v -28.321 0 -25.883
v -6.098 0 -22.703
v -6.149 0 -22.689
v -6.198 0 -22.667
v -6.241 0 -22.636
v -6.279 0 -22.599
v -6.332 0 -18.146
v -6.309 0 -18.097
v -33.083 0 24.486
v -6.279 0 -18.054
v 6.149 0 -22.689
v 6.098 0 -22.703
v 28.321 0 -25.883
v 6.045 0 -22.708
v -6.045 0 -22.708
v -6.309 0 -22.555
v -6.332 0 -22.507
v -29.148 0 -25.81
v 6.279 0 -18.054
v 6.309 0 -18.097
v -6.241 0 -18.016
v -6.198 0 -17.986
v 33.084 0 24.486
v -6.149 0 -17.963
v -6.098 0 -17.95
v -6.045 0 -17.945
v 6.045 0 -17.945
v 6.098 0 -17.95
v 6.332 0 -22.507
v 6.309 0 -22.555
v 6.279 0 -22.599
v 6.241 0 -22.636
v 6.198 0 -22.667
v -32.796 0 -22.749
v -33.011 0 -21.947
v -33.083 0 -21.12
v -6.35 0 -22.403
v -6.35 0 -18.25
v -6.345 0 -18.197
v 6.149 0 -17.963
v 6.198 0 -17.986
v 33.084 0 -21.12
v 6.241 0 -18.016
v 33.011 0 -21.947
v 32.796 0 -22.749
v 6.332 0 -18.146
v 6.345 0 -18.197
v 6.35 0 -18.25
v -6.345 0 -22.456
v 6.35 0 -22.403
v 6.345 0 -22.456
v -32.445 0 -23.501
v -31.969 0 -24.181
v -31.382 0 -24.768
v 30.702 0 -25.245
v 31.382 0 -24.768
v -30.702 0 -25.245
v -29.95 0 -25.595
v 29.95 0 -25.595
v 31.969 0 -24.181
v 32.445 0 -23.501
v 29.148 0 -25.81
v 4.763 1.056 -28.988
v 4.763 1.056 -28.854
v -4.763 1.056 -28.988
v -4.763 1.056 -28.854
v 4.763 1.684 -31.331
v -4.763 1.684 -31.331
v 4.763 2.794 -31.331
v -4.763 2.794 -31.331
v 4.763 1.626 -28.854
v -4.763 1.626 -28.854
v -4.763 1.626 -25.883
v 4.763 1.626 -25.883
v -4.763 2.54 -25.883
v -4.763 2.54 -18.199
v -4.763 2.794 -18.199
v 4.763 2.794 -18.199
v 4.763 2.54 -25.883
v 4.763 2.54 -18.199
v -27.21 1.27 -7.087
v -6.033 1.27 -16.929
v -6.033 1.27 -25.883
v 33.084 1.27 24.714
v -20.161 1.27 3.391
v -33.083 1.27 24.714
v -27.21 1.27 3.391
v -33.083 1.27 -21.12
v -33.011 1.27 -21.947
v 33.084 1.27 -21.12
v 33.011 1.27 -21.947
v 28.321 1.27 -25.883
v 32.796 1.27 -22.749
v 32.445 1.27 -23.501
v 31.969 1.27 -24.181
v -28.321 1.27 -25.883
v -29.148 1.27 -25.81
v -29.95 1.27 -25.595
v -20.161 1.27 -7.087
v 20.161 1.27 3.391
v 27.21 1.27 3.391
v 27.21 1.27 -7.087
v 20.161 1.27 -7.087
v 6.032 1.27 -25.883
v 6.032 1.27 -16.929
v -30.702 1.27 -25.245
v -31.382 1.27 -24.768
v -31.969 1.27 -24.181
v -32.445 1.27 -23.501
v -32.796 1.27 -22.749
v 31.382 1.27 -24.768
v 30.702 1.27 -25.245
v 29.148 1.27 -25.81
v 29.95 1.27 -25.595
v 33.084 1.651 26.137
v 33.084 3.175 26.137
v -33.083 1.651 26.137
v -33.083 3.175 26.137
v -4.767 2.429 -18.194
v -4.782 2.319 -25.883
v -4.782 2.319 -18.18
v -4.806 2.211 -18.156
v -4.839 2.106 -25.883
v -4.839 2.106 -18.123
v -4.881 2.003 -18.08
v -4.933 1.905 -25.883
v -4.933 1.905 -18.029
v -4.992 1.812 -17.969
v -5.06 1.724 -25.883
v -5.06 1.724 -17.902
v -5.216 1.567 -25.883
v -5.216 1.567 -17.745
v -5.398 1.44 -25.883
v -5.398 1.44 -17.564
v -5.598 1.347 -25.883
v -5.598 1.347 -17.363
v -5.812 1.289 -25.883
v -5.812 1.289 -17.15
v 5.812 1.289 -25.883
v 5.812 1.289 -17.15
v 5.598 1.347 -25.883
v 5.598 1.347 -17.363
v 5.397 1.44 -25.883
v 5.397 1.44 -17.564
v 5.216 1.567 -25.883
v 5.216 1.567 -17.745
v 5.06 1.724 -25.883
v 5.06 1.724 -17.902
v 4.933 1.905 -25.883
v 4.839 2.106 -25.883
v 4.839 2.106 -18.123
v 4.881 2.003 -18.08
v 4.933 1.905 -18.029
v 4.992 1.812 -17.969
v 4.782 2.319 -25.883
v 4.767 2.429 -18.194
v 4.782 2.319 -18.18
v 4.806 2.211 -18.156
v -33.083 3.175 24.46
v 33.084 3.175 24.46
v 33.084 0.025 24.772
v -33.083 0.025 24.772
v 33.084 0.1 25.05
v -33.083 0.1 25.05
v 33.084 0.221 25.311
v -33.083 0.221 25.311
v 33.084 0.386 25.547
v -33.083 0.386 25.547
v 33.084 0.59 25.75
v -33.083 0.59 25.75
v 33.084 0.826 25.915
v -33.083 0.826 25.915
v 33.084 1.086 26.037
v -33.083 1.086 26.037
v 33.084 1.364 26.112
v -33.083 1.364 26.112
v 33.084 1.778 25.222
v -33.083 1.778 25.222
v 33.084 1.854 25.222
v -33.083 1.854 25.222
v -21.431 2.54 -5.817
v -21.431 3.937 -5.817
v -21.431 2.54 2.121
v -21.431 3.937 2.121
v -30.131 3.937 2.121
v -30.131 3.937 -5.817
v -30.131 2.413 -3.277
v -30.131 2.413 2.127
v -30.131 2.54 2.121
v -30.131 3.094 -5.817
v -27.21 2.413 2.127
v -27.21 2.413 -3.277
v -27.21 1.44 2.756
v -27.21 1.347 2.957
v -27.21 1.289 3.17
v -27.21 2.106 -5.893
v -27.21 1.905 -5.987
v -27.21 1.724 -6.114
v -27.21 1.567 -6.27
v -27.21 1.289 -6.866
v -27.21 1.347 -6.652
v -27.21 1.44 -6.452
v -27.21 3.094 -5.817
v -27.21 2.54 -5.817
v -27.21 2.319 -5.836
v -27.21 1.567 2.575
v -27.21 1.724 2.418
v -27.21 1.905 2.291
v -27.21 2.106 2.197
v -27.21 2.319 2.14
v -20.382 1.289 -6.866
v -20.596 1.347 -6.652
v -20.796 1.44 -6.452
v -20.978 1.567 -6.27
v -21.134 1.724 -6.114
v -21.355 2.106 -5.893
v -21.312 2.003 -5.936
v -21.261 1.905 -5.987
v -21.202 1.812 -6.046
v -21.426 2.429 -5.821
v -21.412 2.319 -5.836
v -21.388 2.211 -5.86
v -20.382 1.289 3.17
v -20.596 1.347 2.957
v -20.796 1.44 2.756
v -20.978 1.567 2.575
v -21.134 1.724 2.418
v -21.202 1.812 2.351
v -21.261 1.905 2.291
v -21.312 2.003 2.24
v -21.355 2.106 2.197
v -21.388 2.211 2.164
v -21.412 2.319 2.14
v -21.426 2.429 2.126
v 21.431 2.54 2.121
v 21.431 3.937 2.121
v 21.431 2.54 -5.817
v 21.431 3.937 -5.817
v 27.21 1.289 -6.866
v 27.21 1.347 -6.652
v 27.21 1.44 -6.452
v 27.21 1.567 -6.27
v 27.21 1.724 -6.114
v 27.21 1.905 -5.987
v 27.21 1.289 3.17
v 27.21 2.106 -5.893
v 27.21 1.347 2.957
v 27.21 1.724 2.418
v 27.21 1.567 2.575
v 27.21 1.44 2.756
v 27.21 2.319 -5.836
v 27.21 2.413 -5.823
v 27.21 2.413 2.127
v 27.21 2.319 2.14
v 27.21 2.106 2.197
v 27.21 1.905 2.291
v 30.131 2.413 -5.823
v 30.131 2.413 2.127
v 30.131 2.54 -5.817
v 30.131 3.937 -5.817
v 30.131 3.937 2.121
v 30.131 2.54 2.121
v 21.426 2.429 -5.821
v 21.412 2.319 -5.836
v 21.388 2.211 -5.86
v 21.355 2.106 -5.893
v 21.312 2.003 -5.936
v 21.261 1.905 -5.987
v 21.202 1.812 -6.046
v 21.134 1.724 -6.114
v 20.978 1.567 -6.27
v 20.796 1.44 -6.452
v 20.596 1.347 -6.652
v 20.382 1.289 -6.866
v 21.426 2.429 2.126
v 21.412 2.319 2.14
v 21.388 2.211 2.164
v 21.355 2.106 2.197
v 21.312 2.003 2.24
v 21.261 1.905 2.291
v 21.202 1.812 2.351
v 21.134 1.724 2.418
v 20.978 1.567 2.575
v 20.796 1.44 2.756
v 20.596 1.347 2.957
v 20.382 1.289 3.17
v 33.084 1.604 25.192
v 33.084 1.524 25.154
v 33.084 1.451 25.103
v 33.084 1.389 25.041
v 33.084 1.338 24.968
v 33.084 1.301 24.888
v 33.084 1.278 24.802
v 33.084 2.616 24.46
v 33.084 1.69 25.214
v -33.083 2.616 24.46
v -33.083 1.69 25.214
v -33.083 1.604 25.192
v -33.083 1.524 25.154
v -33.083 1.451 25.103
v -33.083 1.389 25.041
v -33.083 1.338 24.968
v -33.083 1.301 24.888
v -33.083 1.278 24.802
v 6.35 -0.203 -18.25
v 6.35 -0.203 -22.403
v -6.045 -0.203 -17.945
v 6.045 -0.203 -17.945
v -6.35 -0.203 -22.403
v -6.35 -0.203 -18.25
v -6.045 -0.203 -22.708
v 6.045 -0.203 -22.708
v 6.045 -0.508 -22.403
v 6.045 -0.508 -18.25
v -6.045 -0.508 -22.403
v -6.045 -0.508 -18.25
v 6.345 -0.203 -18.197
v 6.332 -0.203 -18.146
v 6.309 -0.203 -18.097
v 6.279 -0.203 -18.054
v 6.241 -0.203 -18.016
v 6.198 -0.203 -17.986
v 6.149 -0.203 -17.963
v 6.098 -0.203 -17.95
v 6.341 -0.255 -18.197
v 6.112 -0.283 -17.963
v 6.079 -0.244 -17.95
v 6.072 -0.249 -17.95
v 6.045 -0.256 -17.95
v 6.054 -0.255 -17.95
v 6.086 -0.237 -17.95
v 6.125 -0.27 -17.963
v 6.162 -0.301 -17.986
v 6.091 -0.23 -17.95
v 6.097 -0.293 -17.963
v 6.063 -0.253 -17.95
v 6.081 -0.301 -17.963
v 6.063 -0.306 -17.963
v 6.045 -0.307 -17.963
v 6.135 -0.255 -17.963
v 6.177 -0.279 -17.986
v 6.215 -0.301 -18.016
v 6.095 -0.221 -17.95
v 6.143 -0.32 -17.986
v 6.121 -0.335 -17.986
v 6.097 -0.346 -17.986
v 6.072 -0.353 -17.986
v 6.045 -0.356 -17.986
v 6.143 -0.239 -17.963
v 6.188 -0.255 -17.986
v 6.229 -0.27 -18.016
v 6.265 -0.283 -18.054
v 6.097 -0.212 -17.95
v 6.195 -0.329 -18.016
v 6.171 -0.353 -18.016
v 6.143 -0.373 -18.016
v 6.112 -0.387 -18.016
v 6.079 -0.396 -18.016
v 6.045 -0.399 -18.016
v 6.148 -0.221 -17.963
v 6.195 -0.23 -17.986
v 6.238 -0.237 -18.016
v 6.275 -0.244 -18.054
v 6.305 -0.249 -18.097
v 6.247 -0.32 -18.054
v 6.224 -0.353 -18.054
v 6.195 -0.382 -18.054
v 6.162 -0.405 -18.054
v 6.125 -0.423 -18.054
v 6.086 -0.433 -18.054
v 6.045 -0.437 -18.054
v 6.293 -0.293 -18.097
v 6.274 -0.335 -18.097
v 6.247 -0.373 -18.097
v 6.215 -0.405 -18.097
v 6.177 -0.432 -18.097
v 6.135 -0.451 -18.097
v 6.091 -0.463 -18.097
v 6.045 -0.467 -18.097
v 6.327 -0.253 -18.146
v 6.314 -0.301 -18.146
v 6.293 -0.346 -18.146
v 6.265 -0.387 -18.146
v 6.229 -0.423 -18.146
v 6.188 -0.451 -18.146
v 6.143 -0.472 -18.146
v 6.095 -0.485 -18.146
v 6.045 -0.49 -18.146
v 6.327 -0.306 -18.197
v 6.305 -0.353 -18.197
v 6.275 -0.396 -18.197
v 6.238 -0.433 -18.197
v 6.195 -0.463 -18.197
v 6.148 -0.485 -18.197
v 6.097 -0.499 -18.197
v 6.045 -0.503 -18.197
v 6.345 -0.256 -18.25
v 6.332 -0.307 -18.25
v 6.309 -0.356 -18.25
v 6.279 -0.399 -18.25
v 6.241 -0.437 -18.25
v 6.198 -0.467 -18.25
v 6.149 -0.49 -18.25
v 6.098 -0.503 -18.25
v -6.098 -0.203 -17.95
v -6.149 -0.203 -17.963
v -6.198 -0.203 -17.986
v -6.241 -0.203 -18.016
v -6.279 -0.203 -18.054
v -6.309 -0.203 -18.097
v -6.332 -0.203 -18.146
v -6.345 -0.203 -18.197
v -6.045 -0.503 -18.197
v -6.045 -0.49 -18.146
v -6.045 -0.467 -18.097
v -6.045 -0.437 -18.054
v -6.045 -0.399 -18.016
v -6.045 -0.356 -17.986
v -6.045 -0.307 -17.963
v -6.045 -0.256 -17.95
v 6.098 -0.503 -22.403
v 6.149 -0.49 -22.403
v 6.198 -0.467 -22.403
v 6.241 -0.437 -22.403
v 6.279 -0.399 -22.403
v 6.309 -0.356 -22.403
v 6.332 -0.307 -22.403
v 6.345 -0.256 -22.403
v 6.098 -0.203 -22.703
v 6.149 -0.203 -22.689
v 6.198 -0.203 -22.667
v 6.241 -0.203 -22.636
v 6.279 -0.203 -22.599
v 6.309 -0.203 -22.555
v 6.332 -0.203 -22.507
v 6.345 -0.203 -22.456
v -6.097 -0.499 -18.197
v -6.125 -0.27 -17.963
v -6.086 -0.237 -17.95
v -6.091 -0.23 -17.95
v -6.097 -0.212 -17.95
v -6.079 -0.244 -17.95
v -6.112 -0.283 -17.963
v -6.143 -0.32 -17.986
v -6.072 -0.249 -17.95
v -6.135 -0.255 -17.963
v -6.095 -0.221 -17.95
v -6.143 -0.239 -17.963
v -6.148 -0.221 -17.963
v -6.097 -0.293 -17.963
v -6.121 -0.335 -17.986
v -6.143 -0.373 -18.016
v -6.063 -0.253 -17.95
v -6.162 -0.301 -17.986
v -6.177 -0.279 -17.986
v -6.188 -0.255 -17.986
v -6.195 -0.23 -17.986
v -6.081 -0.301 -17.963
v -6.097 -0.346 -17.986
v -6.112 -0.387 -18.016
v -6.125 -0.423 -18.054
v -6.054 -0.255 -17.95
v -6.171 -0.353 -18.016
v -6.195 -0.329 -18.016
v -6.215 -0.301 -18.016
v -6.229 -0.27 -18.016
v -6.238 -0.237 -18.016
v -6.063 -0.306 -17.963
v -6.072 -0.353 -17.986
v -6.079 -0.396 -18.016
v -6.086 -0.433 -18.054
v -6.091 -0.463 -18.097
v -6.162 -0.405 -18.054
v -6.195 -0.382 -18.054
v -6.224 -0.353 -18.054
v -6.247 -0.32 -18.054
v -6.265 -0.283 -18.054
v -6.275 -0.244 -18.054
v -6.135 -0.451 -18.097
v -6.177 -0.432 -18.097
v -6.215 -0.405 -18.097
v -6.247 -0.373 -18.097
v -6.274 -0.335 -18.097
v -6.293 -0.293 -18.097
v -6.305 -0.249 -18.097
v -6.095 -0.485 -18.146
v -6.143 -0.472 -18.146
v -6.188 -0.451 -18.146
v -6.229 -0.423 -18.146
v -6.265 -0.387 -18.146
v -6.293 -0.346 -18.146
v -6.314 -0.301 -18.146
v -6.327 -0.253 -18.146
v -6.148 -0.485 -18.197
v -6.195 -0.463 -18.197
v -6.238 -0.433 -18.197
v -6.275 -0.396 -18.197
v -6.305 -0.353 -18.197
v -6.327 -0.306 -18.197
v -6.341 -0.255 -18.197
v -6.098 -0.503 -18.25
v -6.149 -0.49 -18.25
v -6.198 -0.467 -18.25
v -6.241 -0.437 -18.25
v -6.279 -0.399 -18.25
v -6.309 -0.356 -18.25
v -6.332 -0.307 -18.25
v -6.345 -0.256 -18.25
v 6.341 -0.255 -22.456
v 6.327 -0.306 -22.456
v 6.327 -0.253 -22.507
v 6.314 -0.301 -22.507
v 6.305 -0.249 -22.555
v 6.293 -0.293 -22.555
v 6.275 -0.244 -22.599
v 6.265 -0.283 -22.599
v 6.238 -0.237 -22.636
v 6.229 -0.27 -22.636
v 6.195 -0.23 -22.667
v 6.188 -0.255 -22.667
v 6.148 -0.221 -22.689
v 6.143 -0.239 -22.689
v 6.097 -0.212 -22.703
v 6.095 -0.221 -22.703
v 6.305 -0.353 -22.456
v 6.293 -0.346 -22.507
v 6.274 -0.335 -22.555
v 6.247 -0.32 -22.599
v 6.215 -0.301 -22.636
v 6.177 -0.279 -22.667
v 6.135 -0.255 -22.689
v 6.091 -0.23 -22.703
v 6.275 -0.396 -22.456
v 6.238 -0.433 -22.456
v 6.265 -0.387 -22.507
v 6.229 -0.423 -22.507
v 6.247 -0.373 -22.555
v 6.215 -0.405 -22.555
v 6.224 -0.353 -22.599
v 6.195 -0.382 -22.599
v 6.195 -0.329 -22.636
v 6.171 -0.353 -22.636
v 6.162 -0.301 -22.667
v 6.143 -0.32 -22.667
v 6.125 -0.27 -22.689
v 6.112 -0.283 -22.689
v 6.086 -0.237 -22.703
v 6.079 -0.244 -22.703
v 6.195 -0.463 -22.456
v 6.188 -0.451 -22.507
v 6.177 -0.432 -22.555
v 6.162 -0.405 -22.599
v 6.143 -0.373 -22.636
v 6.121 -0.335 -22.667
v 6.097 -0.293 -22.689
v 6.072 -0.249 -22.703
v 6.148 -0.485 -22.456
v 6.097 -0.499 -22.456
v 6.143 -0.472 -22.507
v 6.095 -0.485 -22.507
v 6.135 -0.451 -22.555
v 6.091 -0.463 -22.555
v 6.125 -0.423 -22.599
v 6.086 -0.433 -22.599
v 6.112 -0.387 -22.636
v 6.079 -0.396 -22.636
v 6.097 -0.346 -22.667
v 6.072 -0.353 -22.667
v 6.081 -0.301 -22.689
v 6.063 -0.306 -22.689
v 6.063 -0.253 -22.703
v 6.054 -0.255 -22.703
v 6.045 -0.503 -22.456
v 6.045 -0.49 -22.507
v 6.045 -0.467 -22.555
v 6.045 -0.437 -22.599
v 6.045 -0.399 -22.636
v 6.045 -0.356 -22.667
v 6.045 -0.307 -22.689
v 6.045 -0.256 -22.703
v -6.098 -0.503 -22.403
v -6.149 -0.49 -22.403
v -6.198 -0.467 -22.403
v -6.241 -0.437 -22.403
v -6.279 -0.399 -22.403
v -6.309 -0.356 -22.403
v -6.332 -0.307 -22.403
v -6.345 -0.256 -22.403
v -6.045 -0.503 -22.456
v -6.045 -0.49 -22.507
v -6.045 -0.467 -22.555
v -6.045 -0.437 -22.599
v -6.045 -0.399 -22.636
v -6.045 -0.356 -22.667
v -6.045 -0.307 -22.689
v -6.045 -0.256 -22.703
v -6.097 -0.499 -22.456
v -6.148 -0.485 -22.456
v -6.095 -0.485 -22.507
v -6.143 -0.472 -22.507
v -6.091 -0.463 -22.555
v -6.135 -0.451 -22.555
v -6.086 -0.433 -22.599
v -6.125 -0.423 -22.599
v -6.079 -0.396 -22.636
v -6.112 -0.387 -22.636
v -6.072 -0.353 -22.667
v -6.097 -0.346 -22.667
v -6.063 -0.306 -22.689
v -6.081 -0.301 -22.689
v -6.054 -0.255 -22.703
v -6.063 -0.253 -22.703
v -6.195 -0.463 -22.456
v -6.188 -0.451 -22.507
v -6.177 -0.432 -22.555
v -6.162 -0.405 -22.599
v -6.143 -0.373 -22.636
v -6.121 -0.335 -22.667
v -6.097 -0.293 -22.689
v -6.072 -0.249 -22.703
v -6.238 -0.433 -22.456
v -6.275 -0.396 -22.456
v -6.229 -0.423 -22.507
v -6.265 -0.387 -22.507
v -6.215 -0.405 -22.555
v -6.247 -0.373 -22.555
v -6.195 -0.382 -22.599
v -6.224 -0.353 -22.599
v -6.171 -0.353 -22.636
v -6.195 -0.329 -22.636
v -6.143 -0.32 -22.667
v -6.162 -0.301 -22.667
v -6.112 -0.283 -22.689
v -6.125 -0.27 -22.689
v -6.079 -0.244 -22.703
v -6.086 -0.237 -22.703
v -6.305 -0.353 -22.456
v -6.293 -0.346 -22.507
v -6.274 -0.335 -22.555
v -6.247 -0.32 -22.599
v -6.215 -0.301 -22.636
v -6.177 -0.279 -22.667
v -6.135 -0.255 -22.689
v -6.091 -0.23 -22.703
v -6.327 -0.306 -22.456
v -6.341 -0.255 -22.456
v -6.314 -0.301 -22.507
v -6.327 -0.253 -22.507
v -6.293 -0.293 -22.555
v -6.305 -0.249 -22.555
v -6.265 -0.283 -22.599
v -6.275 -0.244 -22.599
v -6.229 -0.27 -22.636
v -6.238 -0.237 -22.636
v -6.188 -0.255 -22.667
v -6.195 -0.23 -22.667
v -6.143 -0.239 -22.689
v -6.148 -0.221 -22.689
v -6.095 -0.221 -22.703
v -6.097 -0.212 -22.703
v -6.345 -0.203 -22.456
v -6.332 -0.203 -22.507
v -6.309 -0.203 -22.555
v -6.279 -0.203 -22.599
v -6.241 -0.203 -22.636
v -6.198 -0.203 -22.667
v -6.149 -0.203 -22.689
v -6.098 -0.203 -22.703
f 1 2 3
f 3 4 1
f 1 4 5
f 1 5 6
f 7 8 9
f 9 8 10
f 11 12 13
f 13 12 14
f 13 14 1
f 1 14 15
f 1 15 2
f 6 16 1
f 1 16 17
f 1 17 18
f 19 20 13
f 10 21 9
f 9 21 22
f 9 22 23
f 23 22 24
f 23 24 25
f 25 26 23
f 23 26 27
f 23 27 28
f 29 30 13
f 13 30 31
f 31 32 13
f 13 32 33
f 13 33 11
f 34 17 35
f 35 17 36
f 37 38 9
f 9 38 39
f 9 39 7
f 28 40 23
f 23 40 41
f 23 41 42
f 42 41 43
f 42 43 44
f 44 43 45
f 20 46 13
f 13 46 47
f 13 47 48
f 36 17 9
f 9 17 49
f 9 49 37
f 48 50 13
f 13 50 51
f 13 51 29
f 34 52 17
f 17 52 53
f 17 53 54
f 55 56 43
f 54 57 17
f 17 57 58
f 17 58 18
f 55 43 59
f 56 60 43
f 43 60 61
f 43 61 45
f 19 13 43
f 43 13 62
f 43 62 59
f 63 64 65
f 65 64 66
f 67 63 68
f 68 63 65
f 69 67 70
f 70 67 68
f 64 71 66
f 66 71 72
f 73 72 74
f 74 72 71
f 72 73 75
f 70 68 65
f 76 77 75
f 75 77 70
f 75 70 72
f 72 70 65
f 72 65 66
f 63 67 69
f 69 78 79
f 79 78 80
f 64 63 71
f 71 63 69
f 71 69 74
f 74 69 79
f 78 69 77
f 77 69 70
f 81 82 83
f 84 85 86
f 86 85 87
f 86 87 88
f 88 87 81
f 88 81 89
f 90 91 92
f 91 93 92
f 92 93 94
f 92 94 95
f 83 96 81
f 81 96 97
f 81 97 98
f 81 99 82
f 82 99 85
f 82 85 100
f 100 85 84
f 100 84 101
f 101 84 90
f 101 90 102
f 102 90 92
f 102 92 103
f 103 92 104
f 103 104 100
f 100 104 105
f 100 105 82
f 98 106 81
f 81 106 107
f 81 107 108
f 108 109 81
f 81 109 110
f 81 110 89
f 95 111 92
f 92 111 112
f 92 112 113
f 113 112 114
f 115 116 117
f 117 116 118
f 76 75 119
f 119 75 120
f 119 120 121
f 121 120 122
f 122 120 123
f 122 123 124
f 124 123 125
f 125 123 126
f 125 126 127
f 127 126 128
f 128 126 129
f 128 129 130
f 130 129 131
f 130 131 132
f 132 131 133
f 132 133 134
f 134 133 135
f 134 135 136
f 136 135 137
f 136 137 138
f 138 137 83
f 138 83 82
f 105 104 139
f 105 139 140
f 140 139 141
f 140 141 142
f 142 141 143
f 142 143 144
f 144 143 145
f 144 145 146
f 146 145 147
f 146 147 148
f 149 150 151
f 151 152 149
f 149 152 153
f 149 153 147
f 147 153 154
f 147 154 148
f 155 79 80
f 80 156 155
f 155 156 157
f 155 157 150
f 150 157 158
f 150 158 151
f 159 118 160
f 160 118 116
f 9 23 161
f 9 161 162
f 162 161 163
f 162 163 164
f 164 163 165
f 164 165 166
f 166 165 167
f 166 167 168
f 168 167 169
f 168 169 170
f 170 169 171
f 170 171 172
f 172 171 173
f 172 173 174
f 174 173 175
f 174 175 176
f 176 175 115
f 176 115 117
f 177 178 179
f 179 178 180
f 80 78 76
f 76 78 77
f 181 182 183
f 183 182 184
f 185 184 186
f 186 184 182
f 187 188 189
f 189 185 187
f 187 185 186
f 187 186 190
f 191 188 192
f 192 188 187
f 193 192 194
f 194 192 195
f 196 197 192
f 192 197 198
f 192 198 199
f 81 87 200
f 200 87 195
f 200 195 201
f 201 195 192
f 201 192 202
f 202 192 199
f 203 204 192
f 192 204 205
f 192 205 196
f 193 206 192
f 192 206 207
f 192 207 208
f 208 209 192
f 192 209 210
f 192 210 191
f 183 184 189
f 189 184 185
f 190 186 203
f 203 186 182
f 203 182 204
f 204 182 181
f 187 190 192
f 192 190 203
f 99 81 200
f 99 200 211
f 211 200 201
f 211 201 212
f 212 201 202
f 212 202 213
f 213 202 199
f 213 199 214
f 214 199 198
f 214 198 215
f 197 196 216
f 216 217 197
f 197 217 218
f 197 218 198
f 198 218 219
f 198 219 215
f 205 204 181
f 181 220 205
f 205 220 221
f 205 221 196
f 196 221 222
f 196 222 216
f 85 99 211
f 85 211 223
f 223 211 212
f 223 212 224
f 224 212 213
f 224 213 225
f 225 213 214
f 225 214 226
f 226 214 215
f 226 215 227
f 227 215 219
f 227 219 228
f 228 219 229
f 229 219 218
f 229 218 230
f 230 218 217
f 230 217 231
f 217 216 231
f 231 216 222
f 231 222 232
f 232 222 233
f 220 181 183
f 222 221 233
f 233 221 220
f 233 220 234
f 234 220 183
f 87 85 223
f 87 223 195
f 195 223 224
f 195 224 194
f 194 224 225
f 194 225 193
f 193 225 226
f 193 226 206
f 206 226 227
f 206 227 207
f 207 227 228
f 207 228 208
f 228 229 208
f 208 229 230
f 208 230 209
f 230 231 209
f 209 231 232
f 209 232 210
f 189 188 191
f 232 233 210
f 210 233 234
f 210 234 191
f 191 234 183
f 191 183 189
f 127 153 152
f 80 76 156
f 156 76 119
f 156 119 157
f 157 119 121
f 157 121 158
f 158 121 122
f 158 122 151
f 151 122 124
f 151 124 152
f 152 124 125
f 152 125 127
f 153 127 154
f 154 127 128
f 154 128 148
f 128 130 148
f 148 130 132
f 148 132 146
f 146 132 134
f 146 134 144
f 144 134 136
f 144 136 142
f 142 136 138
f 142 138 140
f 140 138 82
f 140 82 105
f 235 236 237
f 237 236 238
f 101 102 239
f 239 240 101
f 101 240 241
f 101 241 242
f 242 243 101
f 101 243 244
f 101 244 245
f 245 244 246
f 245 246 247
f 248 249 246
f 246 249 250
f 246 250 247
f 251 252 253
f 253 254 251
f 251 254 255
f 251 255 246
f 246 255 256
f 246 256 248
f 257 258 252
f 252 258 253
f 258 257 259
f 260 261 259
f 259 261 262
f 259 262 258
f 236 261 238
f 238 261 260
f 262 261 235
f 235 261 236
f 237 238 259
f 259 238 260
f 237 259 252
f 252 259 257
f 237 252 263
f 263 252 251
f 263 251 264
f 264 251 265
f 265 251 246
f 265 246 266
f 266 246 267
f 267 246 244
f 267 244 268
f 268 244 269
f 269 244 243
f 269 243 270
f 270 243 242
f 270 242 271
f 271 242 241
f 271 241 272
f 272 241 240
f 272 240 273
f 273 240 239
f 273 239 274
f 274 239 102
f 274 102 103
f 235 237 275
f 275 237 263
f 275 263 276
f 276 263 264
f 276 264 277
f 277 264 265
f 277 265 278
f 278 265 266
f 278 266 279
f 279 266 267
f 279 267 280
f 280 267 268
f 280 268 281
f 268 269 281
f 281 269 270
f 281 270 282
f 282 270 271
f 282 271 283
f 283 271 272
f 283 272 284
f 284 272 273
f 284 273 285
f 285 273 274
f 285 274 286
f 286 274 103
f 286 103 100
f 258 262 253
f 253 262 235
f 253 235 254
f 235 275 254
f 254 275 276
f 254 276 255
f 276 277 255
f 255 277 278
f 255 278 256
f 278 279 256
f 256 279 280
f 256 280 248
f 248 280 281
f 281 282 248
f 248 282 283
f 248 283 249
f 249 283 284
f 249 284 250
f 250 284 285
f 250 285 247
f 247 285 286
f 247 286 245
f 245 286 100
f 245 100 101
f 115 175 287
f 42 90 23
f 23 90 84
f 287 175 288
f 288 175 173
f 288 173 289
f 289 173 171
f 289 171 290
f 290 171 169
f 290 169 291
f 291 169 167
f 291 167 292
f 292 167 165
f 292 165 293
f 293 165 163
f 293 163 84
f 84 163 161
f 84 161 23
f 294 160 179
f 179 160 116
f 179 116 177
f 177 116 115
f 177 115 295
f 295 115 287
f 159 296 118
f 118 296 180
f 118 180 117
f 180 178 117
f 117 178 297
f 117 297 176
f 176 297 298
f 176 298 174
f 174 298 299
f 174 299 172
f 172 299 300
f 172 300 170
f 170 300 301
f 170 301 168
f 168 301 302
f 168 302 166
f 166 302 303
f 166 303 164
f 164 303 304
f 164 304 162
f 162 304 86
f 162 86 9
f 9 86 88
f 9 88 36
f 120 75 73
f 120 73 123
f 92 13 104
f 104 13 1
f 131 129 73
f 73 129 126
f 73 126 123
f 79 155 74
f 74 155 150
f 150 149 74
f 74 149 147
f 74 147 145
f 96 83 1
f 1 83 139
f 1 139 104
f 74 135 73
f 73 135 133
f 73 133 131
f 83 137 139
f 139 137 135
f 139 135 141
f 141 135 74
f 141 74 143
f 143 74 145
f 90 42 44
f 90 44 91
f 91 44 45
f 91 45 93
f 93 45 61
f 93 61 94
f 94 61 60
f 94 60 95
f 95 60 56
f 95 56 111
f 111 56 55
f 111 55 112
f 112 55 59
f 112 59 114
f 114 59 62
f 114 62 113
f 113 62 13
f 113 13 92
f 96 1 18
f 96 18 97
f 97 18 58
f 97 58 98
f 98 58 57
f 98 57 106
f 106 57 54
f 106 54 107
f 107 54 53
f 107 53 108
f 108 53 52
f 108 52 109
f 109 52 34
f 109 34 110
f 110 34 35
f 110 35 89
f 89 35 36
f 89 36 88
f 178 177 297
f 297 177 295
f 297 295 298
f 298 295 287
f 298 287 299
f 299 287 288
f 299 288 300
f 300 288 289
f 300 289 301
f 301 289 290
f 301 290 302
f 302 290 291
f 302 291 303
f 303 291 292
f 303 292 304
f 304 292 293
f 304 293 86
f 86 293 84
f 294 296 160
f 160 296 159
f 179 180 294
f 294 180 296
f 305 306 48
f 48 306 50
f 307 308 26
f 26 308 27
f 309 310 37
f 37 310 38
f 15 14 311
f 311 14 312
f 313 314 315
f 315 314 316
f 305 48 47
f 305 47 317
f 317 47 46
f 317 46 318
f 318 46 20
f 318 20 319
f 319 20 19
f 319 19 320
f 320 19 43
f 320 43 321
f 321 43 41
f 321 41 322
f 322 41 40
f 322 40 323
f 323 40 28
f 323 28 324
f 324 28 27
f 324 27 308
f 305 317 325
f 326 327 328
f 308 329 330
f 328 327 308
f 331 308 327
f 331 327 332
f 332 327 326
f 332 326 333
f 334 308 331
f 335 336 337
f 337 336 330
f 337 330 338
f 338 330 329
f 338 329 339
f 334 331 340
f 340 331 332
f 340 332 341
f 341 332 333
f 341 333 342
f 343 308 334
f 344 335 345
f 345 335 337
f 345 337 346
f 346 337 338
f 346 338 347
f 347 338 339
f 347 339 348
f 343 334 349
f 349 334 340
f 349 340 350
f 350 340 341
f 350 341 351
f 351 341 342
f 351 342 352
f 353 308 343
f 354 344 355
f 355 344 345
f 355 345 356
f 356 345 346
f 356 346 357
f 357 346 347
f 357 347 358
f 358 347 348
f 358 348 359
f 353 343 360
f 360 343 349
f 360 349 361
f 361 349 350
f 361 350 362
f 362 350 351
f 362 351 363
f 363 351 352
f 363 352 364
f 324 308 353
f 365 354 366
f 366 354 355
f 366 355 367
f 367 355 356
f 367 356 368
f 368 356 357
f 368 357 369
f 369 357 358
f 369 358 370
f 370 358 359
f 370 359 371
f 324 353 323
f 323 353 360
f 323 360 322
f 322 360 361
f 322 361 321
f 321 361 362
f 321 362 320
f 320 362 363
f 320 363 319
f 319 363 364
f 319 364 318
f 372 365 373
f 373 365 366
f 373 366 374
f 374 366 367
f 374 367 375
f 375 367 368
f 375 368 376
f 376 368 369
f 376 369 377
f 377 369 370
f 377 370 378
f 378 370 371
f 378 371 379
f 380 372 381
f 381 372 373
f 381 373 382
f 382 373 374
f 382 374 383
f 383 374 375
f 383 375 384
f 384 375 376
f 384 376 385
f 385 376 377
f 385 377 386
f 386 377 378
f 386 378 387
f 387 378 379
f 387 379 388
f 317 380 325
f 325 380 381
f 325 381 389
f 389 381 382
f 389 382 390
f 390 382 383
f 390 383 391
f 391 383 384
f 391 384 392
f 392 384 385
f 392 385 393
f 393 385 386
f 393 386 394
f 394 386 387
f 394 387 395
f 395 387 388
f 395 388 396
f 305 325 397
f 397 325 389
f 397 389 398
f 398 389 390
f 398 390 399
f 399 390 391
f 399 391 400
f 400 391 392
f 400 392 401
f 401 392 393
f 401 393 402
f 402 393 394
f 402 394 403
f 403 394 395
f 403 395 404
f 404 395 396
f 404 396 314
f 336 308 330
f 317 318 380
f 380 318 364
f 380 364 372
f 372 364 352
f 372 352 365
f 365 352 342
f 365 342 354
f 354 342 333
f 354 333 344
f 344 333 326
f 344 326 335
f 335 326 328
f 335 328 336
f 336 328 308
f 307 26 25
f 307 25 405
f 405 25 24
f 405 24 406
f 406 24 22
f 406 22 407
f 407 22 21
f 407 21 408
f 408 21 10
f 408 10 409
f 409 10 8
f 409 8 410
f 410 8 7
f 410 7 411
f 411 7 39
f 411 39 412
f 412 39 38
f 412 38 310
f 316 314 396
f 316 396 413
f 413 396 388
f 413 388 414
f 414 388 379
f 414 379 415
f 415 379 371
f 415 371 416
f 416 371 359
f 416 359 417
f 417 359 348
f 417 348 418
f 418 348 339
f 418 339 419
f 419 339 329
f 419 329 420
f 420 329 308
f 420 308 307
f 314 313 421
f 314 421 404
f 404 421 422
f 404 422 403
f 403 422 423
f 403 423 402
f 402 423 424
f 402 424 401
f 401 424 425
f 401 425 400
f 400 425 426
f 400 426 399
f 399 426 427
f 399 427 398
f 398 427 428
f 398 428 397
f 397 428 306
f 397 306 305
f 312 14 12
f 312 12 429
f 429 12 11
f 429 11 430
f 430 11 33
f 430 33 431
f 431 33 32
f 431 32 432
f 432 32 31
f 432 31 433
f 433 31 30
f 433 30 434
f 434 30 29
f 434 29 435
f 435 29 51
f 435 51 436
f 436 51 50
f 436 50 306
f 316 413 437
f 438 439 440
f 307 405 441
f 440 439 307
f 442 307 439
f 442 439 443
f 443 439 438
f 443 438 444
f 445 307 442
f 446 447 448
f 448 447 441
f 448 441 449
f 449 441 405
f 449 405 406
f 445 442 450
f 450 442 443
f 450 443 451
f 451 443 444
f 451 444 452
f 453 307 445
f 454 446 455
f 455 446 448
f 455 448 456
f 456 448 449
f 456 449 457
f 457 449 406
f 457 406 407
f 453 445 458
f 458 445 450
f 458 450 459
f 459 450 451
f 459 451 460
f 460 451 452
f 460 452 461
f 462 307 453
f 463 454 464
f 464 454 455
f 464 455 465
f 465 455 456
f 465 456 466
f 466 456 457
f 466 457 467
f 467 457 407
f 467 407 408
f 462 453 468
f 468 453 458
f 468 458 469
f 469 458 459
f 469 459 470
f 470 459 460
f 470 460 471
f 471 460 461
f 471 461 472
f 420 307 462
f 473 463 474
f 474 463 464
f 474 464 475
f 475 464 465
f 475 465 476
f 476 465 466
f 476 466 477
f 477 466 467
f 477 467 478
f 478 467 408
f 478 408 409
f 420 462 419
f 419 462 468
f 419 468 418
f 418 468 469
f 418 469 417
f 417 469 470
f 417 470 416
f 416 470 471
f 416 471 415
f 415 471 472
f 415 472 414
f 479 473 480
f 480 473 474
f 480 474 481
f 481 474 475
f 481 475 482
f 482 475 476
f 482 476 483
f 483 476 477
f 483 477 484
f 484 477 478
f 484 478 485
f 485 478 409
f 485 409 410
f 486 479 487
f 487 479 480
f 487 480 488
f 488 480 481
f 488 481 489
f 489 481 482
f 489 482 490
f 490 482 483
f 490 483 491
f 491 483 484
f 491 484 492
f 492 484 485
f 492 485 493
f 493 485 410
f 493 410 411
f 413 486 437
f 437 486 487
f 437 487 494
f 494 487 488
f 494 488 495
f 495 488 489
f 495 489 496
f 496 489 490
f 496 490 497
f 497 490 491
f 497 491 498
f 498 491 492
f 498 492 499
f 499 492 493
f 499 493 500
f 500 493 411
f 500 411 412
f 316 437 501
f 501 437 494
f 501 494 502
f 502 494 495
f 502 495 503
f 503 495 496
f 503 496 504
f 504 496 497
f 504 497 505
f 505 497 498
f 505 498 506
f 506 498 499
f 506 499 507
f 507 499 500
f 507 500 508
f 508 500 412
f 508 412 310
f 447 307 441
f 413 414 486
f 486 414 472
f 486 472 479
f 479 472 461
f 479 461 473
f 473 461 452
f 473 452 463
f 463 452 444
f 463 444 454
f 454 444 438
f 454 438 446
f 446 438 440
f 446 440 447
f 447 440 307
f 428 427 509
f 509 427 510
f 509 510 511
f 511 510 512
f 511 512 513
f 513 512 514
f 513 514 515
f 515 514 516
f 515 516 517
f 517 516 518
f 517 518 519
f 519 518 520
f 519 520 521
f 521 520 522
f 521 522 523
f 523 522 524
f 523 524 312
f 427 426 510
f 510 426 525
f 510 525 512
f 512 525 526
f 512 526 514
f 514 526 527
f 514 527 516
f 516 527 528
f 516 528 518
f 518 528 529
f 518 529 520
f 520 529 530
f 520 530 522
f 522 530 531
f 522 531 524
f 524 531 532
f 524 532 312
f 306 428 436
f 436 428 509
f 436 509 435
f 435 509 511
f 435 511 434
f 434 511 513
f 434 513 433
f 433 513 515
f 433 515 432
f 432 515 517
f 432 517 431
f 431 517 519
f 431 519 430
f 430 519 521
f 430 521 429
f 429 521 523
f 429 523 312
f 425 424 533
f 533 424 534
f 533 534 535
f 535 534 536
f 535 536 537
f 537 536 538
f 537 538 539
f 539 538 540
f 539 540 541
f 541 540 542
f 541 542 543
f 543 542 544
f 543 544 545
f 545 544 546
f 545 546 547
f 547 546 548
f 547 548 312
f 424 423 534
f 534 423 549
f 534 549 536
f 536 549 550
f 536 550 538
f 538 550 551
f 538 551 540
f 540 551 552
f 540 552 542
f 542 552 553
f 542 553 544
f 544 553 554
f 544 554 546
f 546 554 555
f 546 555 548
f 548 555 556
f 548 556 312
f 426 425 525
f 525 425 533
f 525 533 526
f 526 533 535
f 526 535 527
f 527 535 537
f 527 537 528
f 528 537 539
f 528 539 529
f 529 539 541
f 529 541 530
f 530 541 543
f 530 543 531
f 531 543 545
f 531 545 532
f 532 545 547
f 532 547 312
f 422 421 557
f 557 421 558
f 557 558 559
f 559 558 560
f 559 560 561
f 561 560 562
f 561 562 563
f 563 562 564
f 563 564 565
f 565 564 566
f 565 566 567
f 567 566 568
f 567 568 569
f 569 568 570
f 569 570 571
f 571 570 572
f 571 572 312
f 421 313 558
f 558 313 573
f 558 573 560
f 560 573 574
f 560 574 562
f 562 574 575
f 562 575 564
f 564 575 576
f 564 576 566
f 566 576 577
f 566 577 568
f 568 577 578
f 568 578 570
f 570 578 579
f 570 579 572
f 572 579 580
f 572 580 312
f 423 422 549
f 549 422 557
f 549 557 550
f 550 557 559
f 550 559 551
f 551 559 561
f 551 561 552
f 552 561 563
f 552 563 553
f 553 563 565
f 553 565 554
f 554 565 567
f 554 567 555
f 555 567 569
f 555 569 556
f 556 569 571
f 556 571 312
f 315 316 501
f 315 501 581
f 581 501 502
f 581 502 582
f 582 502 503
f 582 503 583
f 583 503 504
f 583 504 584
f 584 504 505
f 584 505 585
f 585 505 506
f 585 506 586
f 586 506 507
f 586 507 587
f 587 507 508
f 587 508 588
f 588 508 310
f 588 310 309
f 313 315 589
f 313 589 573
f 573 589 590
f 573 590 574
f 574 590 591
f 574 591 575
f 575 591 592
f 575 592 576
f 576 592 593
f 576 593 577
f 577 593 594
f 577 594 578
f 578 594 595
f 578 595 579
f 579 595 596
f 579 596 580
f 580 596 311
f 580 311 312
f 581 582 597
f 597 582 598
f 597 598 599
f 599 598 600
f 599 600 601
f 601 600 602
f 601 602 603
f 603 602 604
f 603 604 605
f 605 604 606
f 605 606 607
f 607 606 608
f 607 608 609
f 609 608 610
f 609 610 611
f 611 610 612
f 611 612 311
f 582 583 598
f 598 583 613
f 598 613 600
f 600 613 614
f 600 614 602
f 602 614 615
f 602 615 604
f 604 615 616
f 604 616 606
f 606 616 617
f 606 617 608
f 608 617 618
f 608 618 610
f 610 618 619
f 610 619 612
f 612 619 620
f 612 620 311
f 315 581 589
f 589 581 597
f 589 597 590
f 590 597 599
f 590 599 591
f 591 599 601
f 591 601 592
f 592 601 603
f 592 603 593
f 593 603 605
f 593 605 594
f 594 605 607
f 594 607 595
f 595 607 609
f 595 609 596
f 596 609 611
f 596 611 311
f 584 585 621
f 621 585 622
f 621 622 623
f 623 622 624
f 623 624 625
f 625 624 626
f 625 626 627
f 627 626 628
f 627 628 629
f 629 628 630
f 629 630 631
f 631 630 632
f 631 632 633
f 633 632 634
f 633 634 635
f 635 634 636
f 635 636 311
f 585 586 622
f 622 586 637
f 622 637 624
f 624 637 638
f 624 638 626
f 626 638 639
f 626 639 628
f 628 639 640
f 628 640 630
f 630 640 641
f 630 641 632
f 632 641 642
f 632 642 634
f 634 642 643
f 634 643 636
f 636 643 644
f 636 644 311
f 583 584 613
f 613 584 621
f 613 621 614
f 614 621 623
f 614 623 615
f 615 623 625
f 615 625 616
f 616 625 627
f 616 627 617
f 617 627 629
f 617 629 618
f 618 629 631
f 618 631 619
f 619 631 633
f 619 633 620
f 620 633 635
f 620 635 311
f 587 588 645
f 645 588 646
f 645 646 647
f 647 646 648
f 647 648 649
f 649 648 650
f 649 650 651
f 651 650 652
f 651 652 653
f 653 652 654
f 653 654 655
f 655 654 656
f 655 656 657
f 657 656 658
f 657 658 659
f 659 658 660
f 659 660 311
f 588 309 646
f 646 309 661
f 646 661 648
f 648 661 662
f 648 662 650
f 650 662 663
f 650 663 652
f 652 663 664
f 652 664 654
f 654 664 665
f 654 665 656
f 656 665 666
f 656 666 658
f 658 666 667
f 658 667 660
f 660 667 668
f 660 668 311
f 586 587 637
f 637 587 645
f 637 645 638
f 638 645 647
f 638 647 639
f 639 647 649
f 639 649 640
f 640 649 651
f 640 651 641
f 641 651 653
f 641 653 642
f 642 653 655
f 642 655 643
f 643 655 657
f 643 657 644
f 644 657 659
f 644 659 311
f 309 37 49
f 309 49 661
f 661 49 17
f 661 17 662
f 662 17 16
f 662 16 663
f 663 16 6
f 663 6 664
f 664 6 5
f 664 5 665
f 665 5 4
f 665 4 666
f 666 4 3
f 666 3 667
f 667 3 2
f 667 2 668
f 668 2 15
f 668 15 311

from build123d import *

# Parameters (mm, degrees)
SKETCH1_W            = 66.675
SKETCH1_H            = 52.2732
BOSS_EXTRUDE1_DEPTH  = 1.27
BOSS_EXTRUDE3_DEPTH  = 4.7625
BOSS_EXTRUDE4_DEPTH  = 7.9375
CUT_EXTRUDE2_DEPTH   = 2.921
FILLET1_R            = 1.27
FILLET2_R            = 1.27
MIRROR1_START        = 20.16125
MIRROR1_DEPTH        = 7.0485
MIRROR1_START_2      = 27.20975
MIRROR1_2_DEPTH      = 2.921
MIRROR1_START_3      = -8
MIRROR1_3_DEPTH      = 12
SKETCH7_W            = 1.016
SKETCH7_H            = 1.905
BOSS_EXTRUDE5_DEPTH  = 66.675
SKETCH8_W            = 66.675
SKETCH8_H            = 0.6604
BOSS_EXTRUDE6_DEPTH  = 0.762
FILLET5_R            = 1.651
SKETCH10_W           = 9.525
SKETCH10_H           = 2.7178
CUT_EXTRUDE3_DEPTH   = 0.1016
SKETCH11_W           = 66.675
SKETCH11_H           = 1.2446
CUT_EXTRUDE4_DEPTH   = 0.1016
SKETCH12_W           = 107.616027614
SKETCH12_H           = 63.046095141
SKETCH12_W_2         = 66.167
SKETCH12_H_2         = 53.768388695
CUT_EXTRUDE5_DEPTH   = 46.918560191
FILLET6_R            = 4.7625
SKETCH13_W           = 0.8636
SKETCH13_H           = 0.6604
CUT_EXTRUDE6_DEPTH   = 74.315736052
BOSS_EXTRUDE8_DEPTH  = 66.167
FILLET7_R            = 0.508
BOSS_EXTRUDE9_DEPTH  = 66.167
SKETCH17_W           = 9.525
SKETCH17_H           = 1.1684
BOSS_EXTRUDE10_DEPTH = 1.27
SKETCH18_W           = 12.7
SKETCH18_H           = 4.7625
BOSS_EXTRUDE13_DEPTH = 0.508
FILLET8_R            = 0.3048


with BuildPart() as part:
    # Sketch1 → Boss-Extrude1 (new body)
    with BuildSketch(Plane(origin=(0, 0, 0), x_dir=(1, 0, 0), z_dir=(0, 1, 0))):
        Rectangle(SKETCH1_W, SKETCH1_H)
    extrude(amount=BOSS_EXTRUDE1_DEPTH)

    # Sketch4 → Boss-Extrude3 (add, symmetric)
    with BuildSketch(Plane(origin=(0, 0, 0), x_dir=(0, 0, -1), z_dir=(1, 0, 0))):
        Polygon((28.987783874, 1.055971868), (31.3309, 1.683807942), (31.3309, 2.794), (18.1991, 2.794), (18.1991, 1.27), (26.1366, 1.27), (26.1366, 1.524), (28.8544, 1.524), (28.8544, 1.055971868), align=None)
    extrude(amount=BOSS_EXTRUDE3_DEPTH, both=True)

    # Sketch5 → Boss-Extrude4 (add)
    with BuildSketch(Plane(origin=(0, 0, -5.8166), x_dir=(-1, 0, 0), z_dir=(0, 0, -1))):
        Polygon((21.43125, 1.27), (27.20975, 1.27), (27.20975, 2.413), (30.13075, 2.413), (30.13075, 3.937), (21.43125, 3.937), align=None)
    extrude(amount=-BOSS_EXTRUDE4_DEPTH)

    # Sketch6 → Cut-Extrude2 (cut)
    with BuildSketch(Plane.ZY.offset(30.13075)):
        Polygon((-5.8166, 2.413), (-3.2766, 2.413), (-5.8166, 3.093590949), align=None)
    extrude(amount=-CUT_EXTRUDE2_DEPTH, mode=Mode.SUBTRACT)

    # Fillet1
    fillet1_edges = [part.edges().sort_by_distance(p)[0] for p in [
        (-24.3205, 1.27, 2.1209),
        (-21.43125, 1.27, -1.84785),
        (-24.3205, 1.27, -5.8166),
    ]]
    fillet(fillet1_edges, radius=FILLET1_R)

    # Fillet2
    # the kernel refuses this fillet: 1.27 mm, written as the material it adds along each edge
    with BuildSketch(Plane(origin=(-4.7625, 1.27, -18.1991), x_dir=(-1, 0, 0), z_dir=(0, 0, -1))) as fillet2_piece_1:
        with BuildLine():
            CenterArc((FILLET2_R, FILLET2_R), FILLET2_R, 180, 90)
            Line((0, FILLET2_R), (-FILLET2_R * 0.02, FILLET2_R))
            Line((-FILLET2_R * 0.02, FILLET2_R), (-FILLET2_R * 0.02, -FILLET2_R * 0.02))
            Line((-FILLET2_R * 0.02, -FILLET2_R * 0.02), (FILLET2_R, -FILLET2_R * 0.02))
            Line((FILLET2_R, -FILLET2_R * 0.02), (FILLET2_R, 0))
        make_face()
    extrude(amount=7.9375)
    with BuildSketch(Plane(origin=(-4.7625, 1.27, -18.1991), x_dir=(0, 0, 1), z_dir=(1, 0, 0))) as fillet2_piece_2:
        with BuildLine():
            CenterArc((FILLET2_R, -FILLET2_R), FILLET2_R, 90, 90)
            Line((0, -FILLET2_R), (-FILLET2_R * 0.02, -FILLET2_R))
            Line((-FILLET2_R * 0.02, -FILLET2_R), (-FILLET2_R * 0.02, FILLET2_R * 0.02))
            Line((-FILLET2_R * 0.02, FILLET2_R * 0.02), (FILLET2_R, FILLET2_R * 0.02))
            Line((FILLET2_R, FILLET2_R * 0.02), (FILLET2_R, 0))
        make_face()
    extrude(amount=9.525)
    with BuildSketch(Plane(origin=(4.7625, 1.27, -18.1991), x_dir=(1, 0, 0), z_dir=(0, 0, -1))) as fillet2_piece_3:
        with BuildLine():
            CenterArc((FILLET2_R, -FILLET2_R), FILLET2_R, 90, 90)
            Line((0, -FILLET2_R), (-FILLET2_R * 0.02, -FILLET2_R))
            Line((-FILLET2_R * 0.02, -FILLET2_R), (-FILLET2_R * 0.02, FILLET2_R * 0.02))
            Line((-FILLET2_R * 0.02, FILLET2_R * 0.02), (FILLET2_R, FILLET2_R * 0.02))
            Line((FILLET2_R, FILLET2_R * 0.02), (FILLET2_R, 0))
        make_face()
    extrude(amount=7.9375)
    with BuildSketch(Plane(origin=(-4.7625, 1.27, -15.0241), x_dir=(-1, 0, 0), z_dir=(0, 0, -1))) as fillet2_piece_4a_section:
        with BuildLine():
            CenterArc((FILLET2_R, FILLET2_R), FILLET2_R, 180, 90)
            Line((0, FILLET2_R), (-FILLET2_R * 0.02, FILLET2_R))
            Line((-FILLET2_R * 0.02, FILLET2_R), (-FILLET2_R * 0.02, -FILLET2_R * 0.02))
            Line((-FILLET2_R * 0.02, -FILLET2_R * 0.02), (FILLET2_R, -FILLET2_R * 0.02))
            Line((FILLET2_R, -FILLET2_R * 0.02), (FILLET2_R, 0))
        make_face()
    fillet2_piece_4a = extrude(amount=11.1125, mode=Mode.PRIVATE)
    fillet2_piece_4a = split(fillet2_piece_4a, bisect_by=Plane(origin=(-4.7625, 1.27, -18.1991), z_dir=(0, 0, 1)), keep=Keep.TOP, mode=Mode.PRIVATE)
    with BuildSketch(Plane(origin=(-7.9375, 1.27, -18.1991), x_dir=(0, 0, 1), z_dir=(1, 0, 0))) as fillet2_piece_4b_section:
        with BuildLine():
            CenterArc((FILLET2_R, -FILLET2_R), FILLET2_R, 90, 90)
            Line((0, -FILLET2_R), (-FILLET2_R * 0.02, -FILLET2_R))
            Line((-FILLET2_R * 0.02, -FILLET2_R), (-FILLET2_R * 0.02, FILLET2_R * 0.02))
            Line((-FILLET2_R * 0.02, FILLET2_R * 0.02), (FILLET2_R, FILLET2_R * 0.02))
            Line((FILLET2_R, FILLET2_R * 0.02), (FILLET2_R, 0))
        make_face()
    fillet2_piece_4b = extrude(amount=12.7, mode=Mode.PRIVATE)
    fillet2_piece_4b = split(fillet2_piece_4b, bisect_by=Plane(origin=(-4.7625, 1.27, -18.1991), z_dir=(-1, 0, 0)), keep=Keep.TOP, mode=Mode.PRIVATE)
    fillet2_piece_4 = fillet2_piece_4a & fillet2_piece_4b
    add(fillet2_piece_4)
    with BuildSketch(Plane(origin=(-4.7625, 1.27, -18.1991), x_dir=(0, 0, 1), z_dir=(1, 0, 0))) as fillet2_piece_5a_section:
        with BuildLine():
            CenterArc((FILLET2_R, -FILLET2_R), FILLET2_R, 90, 90)
            Line((0, -FILLET2_R), (-FILLET2_R * 0.02, -FILLET2_R))
            Line((-FILLET2_R * 0.02, -FILLET2_R), (-FILLET2_R * 0.02, FILLET2_R * 0.02))
            Line((-FILLET2_R * 0.02, FILLET2_R * 0.02), (FILLET2_R, FILLET2_R * 0.02))
            Line((FILLET2_R, FILLET2_R * 0.02), (FILLET2_R, 0))
        make_face()
    fillet2_piece_5a = extrude(amount=12.7, mode=Mode.PRIVATE)
    fillet2_piece_5a = split(fillet2_piece_5a, bisect_by=Plane(origin=(4.7625, 1.27, -18.1991), z_dir=(1, 0, 0)), keep=Keep.TOP, mode=Mode.PRIVATE)
    with BuildSketch(Plane(origin=(4.7625, 1.27, -15.0241), x_dir=(1, 0, 0), z_dir=(0, 0, -1))) as fillet2_piece_5b_section:
        with BuildLine():
            CenterArc((FILLET2_R, -FILLET2_R), FILLET2_R, 90, 90)
            Line((0, -FILLET2_R), (-FILLET2_R * 0.02, -FILLET2_R))
            Line((-FILLET2_R * 0.02, -FILLET2_R), (-FILLET2_R * 0.02, FILLET2_R * 0.02))
            Line((-FILLET2_R * 0.02, FILLET2_R * 0.02), (FILLET2_R, FILLET2_R * 0.02))
            Line((FILLET2_R, FILLET2_R * 0.02), (FILLET2_R, 0))
        make_face()
    fillet2_piece_5b = extrude(amount=11.1125, mode=Mode.PRIVATE)
    fillet2_piece_5b = split(fillet2_piece_5b, bisect_by=Plane(origin=(4.7625, 1.27, -18.1991), z_dir=(0, 0, 1)), keep=Keep.TOP, mode=Mode.PRIVATE)
    fillet2_piece_5 = fillet2_piece_5a & fillet2_piece_5b
    add(fillet2_piece_5)

    # Mirror1: read off the stored shape, not the designer's step
    # Mirror1 outline → Mirror1 (add)
    with BuildSketch(Plane.YZ.offset(MIRROR1_START)):
        with BuildLine():
            Line((3.937, -5.8166), (3.937, 2.1209))
            Line((3.937, 2.1209), (2.54, 2.1209))
            ThreePointArc((2.54, 2.1209), (1.641974388, 2.492874388), (1.27, 3.3909))
            Line((1.27, 3.3909), (1.27, -7.0866))
            ThreePointArc((1.27, -7.0866), (1.641974388, -6.188574388), (2.54, -5.8166))
            Line((2.54, -5.8166), (3.937, -5.8166))
        make_face()
    extrude(amount=MIRROR1_DEPTH)

    # Mirror1 2 outline → Mirror1 2 (add)
    with BuildSketch(Plane.YZ.offset(MIRROR1_START_2)):
        with BuildLine():
            Line((3.937, -5.8166), (3.937, 2.1209))
            Line((3.937, 2.1209), (2.54, 2.1209))
            ThreePointArc((2.54, 2.1209), (2.476420276, 2.122492487), (2.413, 2.127265955))
            Line((2.413, 2.127265955), (2.413, -5.822965955))
            ThreePointArc((2.413, -5.822965955), (2.476420276, -5.818192487), (2.54, -5.8166))
            Line((2.54, -5.8166), (3.937, -5.8166))
        make_face()
    extrude(amount=MIRROR1_2_DEPTH)

    # Mirror1 3 outline → Mirror1 3 (cut)
    with BuildSketch(Plane.XY.offset(MIRROR1_START_3)):
        with BuildLine():
            ThreePointArc((20.16125, 1.27), (21.059275612, 1.641974388), (21.43125, 2.54))
            Line((21.43125, 2.54), (21.43125, 3.937))
            Line((21.43125, 3.937), (20.16125, 3.937))
            Line((20.16125, 3.937), (20.16125, 1.27))
        make_face()
    extrude(amount=MIRROR1_3_DEPTH, mode=Mode.SUBTRACT)

    # Sketch7 → Boss-Extrude5 (add)
    with BuildSketch(Plane.ZY.offset(33.3375)):
        with Locations((25.6286, 2.2225)):
            Rectangle(SKETCH7_W, SKETCH7_H)
    extrude(amount=-BOSS_EXTRUDE5_DEPTH)

    # Sketch8 → Boss-Extrude6 (add)
    with BuildSketch(Plane(origin=(0, 0, 25.1206), x_dir=(-1, 0, 0), z_dir=(0, 0, -1))):
        with Locations((0, 2.8448)):
            Rectangle(SKETCH8_W, SKETCH8_H)
    extrude(amount=BOSS_EXTRUDE6_DEPTH)

    # Fillet5
    fillet5_edges = [part.edges().sort_by_distance(p)[0] for p in [
        (0, 0, 26.1366),
    ]]
    fillet(fillet5_edges, radius=FILLET5_R)

    # Sketch10 → Cut-Extrude3 (cut)
    with BuildSketch(Plane.XZ.offset(-1.524)):
        with Locations((0, -27.4955)):
            Rectangle(SKETCH10_W, SKETCH10_H)
    extrude(amount=-CUT_EXTRUDE3_DEPTH, mode=Mode.SUBTRACT)

    # Sketch11 → Cut-Extrude4 (cut)
    with BuildSketch(Plane(origin=(0, 0, 25.1206), x_dir=(-1, 0, 0), z_dir=(0, 0, -1))):
        with Locations((0, 1.8923)):
            Rectangle(SKETCH11_W, SKETCH11_H)
    extrude(amount=-CUT_EXTRUDE4_DEPTH, mode=Mode.SUBTRACT)

    # Sketch12 → Cut-Extrude5 (cut, through all)
    with BuildSketch(Plane.XZ):
        with Locations((0, 4.37044757)):
            Rectangle(SKETCH12_W, SKETCH12_H)
        with Locations((0, 1.001594348)):
            Rectangle(SKETCH12_W_2, SKETCH12_H_2, mode=Mode.SUBTRACT)
    extrude(amount=-CUT_EXTRUDE5_DEPTH, mode=Mode.SUBTRACT)


with BuildPart() as cut_extrude5_piece_1:
    # of the separate pieces the step leaves, piece 1, a body of its own (cut_extrude5_pieces)
    add(part.part.solids().sort_by_distance((33.0835, 1.651, 26.1366))[0])

    # Fillet6
    fillet6_edges = [cut_extrude5_piece_1.edges().sort_by_distance(p)[0] for p in [
        (-33.0835, 0.635, -25.8826),
        (33.0835, 0.635, -25.8826),
    ]]
    fillet(fillet6_edges, radius=FILLET6_R)

    # Sketch13 → Cut-Extrude6 (cut, through all)
    with BuildSketch(Plane.ZY.offset(33.0835)):
        with Locations((24.7904, 2.8448)):
            Rectangle(SKETCH13_W, SKETCH13_H)
    extrude(amount=-CUT_EXTRUDE6_DEPTH, mode=Mode.SUBTRACT)

    # Sketch14 → Boss-Extrude8 (add)
    with BuildSketch(Plane.ZY.offset(33.0835)):
        Polygon((25.2222, 3.175), (24.5872, 3.175), (24.5872, 2.54), (25.2222, 1.905), align=None)
    extrude(amount=-BOSS_EXTRUDE8_DEPTH)

    # Fillet7
    fillet7_edges = [cut_extrude5_piece_1.edges().sort_by_distance(p)[0] for p in [
        (0, 1.27, 25.2222),
    ]]
    fillet(fillet7_edges, radius=FILLET7_R)

    # Sketch16 → Boss-Extrude9 (add)
    with BuildSketch(Plane.ZY.offset(33.0835)):
        Polygon((25.2222, 3.175), (24.4602, 3.175), (24.4602, 2.6162), (25.2222, 1.8542), align=None)
    extrude(amount=-BOSS_EXTRUDE9_DEPTH)



with BuildPart() as cut_extrude5_piece_2:
    # of the separate pieces the step leaves, piece 2, a body of its own (cut_extrude5_pieces)
    add(part.part.solids().sort_by_distance((4.7625, 1.6256, -27.1526))[0])


with BuildPart() as cut_extrude5_piece_1_1:
    add(cut_extrude5_piece_1.part)

    add(cut_extrude5_piece_2.part)  # Boss-Extrude10 merges Cut-Extrude5 piece 2
    # Sketch17 → Boss-Extrude10 (add)
    with BuildSketch(Plane.XY.offset(-27.1526)):
        with Locations((0, 2.2098)):
            Rectangle(SKETCH17_W, SKETCH17_H)
    extrude(amount=BOSS_EXTRUDE10_DEPTH)

    # Sketch18 → Boss-Extrude13 (add)
    with BuildSketch(Plane.XZ):
        with Locations((0, -20.32635)):
            Rectangle(SKETCH18_W, SKETCH18_H)
    extrude(amount=BOSS_EXTRUDE13_DEPTH)

    # Fillet8
    fillet8_edges = [cut_extrude5_piece_1_1.edges().sort_by_distance(p)[0] for p in [
        (6.35, -0.254, -22.7076),
        (6.35, -0.254, -17.9451),
        (-6.35, -0.254, -17.9451),
        (-6.35, -0.254, -22.7076),
        (6.35, -0.508, -20.32635),
        (0, -0.508, -17.9451),
        (-6.35, -0.508, -20.32635),
        (0, -0.508, -22.7076),
    ]]
    fillet(fillet8_edges, radius=FILLET8_R)


solid = cut_extrude5_piece_1_1.part
